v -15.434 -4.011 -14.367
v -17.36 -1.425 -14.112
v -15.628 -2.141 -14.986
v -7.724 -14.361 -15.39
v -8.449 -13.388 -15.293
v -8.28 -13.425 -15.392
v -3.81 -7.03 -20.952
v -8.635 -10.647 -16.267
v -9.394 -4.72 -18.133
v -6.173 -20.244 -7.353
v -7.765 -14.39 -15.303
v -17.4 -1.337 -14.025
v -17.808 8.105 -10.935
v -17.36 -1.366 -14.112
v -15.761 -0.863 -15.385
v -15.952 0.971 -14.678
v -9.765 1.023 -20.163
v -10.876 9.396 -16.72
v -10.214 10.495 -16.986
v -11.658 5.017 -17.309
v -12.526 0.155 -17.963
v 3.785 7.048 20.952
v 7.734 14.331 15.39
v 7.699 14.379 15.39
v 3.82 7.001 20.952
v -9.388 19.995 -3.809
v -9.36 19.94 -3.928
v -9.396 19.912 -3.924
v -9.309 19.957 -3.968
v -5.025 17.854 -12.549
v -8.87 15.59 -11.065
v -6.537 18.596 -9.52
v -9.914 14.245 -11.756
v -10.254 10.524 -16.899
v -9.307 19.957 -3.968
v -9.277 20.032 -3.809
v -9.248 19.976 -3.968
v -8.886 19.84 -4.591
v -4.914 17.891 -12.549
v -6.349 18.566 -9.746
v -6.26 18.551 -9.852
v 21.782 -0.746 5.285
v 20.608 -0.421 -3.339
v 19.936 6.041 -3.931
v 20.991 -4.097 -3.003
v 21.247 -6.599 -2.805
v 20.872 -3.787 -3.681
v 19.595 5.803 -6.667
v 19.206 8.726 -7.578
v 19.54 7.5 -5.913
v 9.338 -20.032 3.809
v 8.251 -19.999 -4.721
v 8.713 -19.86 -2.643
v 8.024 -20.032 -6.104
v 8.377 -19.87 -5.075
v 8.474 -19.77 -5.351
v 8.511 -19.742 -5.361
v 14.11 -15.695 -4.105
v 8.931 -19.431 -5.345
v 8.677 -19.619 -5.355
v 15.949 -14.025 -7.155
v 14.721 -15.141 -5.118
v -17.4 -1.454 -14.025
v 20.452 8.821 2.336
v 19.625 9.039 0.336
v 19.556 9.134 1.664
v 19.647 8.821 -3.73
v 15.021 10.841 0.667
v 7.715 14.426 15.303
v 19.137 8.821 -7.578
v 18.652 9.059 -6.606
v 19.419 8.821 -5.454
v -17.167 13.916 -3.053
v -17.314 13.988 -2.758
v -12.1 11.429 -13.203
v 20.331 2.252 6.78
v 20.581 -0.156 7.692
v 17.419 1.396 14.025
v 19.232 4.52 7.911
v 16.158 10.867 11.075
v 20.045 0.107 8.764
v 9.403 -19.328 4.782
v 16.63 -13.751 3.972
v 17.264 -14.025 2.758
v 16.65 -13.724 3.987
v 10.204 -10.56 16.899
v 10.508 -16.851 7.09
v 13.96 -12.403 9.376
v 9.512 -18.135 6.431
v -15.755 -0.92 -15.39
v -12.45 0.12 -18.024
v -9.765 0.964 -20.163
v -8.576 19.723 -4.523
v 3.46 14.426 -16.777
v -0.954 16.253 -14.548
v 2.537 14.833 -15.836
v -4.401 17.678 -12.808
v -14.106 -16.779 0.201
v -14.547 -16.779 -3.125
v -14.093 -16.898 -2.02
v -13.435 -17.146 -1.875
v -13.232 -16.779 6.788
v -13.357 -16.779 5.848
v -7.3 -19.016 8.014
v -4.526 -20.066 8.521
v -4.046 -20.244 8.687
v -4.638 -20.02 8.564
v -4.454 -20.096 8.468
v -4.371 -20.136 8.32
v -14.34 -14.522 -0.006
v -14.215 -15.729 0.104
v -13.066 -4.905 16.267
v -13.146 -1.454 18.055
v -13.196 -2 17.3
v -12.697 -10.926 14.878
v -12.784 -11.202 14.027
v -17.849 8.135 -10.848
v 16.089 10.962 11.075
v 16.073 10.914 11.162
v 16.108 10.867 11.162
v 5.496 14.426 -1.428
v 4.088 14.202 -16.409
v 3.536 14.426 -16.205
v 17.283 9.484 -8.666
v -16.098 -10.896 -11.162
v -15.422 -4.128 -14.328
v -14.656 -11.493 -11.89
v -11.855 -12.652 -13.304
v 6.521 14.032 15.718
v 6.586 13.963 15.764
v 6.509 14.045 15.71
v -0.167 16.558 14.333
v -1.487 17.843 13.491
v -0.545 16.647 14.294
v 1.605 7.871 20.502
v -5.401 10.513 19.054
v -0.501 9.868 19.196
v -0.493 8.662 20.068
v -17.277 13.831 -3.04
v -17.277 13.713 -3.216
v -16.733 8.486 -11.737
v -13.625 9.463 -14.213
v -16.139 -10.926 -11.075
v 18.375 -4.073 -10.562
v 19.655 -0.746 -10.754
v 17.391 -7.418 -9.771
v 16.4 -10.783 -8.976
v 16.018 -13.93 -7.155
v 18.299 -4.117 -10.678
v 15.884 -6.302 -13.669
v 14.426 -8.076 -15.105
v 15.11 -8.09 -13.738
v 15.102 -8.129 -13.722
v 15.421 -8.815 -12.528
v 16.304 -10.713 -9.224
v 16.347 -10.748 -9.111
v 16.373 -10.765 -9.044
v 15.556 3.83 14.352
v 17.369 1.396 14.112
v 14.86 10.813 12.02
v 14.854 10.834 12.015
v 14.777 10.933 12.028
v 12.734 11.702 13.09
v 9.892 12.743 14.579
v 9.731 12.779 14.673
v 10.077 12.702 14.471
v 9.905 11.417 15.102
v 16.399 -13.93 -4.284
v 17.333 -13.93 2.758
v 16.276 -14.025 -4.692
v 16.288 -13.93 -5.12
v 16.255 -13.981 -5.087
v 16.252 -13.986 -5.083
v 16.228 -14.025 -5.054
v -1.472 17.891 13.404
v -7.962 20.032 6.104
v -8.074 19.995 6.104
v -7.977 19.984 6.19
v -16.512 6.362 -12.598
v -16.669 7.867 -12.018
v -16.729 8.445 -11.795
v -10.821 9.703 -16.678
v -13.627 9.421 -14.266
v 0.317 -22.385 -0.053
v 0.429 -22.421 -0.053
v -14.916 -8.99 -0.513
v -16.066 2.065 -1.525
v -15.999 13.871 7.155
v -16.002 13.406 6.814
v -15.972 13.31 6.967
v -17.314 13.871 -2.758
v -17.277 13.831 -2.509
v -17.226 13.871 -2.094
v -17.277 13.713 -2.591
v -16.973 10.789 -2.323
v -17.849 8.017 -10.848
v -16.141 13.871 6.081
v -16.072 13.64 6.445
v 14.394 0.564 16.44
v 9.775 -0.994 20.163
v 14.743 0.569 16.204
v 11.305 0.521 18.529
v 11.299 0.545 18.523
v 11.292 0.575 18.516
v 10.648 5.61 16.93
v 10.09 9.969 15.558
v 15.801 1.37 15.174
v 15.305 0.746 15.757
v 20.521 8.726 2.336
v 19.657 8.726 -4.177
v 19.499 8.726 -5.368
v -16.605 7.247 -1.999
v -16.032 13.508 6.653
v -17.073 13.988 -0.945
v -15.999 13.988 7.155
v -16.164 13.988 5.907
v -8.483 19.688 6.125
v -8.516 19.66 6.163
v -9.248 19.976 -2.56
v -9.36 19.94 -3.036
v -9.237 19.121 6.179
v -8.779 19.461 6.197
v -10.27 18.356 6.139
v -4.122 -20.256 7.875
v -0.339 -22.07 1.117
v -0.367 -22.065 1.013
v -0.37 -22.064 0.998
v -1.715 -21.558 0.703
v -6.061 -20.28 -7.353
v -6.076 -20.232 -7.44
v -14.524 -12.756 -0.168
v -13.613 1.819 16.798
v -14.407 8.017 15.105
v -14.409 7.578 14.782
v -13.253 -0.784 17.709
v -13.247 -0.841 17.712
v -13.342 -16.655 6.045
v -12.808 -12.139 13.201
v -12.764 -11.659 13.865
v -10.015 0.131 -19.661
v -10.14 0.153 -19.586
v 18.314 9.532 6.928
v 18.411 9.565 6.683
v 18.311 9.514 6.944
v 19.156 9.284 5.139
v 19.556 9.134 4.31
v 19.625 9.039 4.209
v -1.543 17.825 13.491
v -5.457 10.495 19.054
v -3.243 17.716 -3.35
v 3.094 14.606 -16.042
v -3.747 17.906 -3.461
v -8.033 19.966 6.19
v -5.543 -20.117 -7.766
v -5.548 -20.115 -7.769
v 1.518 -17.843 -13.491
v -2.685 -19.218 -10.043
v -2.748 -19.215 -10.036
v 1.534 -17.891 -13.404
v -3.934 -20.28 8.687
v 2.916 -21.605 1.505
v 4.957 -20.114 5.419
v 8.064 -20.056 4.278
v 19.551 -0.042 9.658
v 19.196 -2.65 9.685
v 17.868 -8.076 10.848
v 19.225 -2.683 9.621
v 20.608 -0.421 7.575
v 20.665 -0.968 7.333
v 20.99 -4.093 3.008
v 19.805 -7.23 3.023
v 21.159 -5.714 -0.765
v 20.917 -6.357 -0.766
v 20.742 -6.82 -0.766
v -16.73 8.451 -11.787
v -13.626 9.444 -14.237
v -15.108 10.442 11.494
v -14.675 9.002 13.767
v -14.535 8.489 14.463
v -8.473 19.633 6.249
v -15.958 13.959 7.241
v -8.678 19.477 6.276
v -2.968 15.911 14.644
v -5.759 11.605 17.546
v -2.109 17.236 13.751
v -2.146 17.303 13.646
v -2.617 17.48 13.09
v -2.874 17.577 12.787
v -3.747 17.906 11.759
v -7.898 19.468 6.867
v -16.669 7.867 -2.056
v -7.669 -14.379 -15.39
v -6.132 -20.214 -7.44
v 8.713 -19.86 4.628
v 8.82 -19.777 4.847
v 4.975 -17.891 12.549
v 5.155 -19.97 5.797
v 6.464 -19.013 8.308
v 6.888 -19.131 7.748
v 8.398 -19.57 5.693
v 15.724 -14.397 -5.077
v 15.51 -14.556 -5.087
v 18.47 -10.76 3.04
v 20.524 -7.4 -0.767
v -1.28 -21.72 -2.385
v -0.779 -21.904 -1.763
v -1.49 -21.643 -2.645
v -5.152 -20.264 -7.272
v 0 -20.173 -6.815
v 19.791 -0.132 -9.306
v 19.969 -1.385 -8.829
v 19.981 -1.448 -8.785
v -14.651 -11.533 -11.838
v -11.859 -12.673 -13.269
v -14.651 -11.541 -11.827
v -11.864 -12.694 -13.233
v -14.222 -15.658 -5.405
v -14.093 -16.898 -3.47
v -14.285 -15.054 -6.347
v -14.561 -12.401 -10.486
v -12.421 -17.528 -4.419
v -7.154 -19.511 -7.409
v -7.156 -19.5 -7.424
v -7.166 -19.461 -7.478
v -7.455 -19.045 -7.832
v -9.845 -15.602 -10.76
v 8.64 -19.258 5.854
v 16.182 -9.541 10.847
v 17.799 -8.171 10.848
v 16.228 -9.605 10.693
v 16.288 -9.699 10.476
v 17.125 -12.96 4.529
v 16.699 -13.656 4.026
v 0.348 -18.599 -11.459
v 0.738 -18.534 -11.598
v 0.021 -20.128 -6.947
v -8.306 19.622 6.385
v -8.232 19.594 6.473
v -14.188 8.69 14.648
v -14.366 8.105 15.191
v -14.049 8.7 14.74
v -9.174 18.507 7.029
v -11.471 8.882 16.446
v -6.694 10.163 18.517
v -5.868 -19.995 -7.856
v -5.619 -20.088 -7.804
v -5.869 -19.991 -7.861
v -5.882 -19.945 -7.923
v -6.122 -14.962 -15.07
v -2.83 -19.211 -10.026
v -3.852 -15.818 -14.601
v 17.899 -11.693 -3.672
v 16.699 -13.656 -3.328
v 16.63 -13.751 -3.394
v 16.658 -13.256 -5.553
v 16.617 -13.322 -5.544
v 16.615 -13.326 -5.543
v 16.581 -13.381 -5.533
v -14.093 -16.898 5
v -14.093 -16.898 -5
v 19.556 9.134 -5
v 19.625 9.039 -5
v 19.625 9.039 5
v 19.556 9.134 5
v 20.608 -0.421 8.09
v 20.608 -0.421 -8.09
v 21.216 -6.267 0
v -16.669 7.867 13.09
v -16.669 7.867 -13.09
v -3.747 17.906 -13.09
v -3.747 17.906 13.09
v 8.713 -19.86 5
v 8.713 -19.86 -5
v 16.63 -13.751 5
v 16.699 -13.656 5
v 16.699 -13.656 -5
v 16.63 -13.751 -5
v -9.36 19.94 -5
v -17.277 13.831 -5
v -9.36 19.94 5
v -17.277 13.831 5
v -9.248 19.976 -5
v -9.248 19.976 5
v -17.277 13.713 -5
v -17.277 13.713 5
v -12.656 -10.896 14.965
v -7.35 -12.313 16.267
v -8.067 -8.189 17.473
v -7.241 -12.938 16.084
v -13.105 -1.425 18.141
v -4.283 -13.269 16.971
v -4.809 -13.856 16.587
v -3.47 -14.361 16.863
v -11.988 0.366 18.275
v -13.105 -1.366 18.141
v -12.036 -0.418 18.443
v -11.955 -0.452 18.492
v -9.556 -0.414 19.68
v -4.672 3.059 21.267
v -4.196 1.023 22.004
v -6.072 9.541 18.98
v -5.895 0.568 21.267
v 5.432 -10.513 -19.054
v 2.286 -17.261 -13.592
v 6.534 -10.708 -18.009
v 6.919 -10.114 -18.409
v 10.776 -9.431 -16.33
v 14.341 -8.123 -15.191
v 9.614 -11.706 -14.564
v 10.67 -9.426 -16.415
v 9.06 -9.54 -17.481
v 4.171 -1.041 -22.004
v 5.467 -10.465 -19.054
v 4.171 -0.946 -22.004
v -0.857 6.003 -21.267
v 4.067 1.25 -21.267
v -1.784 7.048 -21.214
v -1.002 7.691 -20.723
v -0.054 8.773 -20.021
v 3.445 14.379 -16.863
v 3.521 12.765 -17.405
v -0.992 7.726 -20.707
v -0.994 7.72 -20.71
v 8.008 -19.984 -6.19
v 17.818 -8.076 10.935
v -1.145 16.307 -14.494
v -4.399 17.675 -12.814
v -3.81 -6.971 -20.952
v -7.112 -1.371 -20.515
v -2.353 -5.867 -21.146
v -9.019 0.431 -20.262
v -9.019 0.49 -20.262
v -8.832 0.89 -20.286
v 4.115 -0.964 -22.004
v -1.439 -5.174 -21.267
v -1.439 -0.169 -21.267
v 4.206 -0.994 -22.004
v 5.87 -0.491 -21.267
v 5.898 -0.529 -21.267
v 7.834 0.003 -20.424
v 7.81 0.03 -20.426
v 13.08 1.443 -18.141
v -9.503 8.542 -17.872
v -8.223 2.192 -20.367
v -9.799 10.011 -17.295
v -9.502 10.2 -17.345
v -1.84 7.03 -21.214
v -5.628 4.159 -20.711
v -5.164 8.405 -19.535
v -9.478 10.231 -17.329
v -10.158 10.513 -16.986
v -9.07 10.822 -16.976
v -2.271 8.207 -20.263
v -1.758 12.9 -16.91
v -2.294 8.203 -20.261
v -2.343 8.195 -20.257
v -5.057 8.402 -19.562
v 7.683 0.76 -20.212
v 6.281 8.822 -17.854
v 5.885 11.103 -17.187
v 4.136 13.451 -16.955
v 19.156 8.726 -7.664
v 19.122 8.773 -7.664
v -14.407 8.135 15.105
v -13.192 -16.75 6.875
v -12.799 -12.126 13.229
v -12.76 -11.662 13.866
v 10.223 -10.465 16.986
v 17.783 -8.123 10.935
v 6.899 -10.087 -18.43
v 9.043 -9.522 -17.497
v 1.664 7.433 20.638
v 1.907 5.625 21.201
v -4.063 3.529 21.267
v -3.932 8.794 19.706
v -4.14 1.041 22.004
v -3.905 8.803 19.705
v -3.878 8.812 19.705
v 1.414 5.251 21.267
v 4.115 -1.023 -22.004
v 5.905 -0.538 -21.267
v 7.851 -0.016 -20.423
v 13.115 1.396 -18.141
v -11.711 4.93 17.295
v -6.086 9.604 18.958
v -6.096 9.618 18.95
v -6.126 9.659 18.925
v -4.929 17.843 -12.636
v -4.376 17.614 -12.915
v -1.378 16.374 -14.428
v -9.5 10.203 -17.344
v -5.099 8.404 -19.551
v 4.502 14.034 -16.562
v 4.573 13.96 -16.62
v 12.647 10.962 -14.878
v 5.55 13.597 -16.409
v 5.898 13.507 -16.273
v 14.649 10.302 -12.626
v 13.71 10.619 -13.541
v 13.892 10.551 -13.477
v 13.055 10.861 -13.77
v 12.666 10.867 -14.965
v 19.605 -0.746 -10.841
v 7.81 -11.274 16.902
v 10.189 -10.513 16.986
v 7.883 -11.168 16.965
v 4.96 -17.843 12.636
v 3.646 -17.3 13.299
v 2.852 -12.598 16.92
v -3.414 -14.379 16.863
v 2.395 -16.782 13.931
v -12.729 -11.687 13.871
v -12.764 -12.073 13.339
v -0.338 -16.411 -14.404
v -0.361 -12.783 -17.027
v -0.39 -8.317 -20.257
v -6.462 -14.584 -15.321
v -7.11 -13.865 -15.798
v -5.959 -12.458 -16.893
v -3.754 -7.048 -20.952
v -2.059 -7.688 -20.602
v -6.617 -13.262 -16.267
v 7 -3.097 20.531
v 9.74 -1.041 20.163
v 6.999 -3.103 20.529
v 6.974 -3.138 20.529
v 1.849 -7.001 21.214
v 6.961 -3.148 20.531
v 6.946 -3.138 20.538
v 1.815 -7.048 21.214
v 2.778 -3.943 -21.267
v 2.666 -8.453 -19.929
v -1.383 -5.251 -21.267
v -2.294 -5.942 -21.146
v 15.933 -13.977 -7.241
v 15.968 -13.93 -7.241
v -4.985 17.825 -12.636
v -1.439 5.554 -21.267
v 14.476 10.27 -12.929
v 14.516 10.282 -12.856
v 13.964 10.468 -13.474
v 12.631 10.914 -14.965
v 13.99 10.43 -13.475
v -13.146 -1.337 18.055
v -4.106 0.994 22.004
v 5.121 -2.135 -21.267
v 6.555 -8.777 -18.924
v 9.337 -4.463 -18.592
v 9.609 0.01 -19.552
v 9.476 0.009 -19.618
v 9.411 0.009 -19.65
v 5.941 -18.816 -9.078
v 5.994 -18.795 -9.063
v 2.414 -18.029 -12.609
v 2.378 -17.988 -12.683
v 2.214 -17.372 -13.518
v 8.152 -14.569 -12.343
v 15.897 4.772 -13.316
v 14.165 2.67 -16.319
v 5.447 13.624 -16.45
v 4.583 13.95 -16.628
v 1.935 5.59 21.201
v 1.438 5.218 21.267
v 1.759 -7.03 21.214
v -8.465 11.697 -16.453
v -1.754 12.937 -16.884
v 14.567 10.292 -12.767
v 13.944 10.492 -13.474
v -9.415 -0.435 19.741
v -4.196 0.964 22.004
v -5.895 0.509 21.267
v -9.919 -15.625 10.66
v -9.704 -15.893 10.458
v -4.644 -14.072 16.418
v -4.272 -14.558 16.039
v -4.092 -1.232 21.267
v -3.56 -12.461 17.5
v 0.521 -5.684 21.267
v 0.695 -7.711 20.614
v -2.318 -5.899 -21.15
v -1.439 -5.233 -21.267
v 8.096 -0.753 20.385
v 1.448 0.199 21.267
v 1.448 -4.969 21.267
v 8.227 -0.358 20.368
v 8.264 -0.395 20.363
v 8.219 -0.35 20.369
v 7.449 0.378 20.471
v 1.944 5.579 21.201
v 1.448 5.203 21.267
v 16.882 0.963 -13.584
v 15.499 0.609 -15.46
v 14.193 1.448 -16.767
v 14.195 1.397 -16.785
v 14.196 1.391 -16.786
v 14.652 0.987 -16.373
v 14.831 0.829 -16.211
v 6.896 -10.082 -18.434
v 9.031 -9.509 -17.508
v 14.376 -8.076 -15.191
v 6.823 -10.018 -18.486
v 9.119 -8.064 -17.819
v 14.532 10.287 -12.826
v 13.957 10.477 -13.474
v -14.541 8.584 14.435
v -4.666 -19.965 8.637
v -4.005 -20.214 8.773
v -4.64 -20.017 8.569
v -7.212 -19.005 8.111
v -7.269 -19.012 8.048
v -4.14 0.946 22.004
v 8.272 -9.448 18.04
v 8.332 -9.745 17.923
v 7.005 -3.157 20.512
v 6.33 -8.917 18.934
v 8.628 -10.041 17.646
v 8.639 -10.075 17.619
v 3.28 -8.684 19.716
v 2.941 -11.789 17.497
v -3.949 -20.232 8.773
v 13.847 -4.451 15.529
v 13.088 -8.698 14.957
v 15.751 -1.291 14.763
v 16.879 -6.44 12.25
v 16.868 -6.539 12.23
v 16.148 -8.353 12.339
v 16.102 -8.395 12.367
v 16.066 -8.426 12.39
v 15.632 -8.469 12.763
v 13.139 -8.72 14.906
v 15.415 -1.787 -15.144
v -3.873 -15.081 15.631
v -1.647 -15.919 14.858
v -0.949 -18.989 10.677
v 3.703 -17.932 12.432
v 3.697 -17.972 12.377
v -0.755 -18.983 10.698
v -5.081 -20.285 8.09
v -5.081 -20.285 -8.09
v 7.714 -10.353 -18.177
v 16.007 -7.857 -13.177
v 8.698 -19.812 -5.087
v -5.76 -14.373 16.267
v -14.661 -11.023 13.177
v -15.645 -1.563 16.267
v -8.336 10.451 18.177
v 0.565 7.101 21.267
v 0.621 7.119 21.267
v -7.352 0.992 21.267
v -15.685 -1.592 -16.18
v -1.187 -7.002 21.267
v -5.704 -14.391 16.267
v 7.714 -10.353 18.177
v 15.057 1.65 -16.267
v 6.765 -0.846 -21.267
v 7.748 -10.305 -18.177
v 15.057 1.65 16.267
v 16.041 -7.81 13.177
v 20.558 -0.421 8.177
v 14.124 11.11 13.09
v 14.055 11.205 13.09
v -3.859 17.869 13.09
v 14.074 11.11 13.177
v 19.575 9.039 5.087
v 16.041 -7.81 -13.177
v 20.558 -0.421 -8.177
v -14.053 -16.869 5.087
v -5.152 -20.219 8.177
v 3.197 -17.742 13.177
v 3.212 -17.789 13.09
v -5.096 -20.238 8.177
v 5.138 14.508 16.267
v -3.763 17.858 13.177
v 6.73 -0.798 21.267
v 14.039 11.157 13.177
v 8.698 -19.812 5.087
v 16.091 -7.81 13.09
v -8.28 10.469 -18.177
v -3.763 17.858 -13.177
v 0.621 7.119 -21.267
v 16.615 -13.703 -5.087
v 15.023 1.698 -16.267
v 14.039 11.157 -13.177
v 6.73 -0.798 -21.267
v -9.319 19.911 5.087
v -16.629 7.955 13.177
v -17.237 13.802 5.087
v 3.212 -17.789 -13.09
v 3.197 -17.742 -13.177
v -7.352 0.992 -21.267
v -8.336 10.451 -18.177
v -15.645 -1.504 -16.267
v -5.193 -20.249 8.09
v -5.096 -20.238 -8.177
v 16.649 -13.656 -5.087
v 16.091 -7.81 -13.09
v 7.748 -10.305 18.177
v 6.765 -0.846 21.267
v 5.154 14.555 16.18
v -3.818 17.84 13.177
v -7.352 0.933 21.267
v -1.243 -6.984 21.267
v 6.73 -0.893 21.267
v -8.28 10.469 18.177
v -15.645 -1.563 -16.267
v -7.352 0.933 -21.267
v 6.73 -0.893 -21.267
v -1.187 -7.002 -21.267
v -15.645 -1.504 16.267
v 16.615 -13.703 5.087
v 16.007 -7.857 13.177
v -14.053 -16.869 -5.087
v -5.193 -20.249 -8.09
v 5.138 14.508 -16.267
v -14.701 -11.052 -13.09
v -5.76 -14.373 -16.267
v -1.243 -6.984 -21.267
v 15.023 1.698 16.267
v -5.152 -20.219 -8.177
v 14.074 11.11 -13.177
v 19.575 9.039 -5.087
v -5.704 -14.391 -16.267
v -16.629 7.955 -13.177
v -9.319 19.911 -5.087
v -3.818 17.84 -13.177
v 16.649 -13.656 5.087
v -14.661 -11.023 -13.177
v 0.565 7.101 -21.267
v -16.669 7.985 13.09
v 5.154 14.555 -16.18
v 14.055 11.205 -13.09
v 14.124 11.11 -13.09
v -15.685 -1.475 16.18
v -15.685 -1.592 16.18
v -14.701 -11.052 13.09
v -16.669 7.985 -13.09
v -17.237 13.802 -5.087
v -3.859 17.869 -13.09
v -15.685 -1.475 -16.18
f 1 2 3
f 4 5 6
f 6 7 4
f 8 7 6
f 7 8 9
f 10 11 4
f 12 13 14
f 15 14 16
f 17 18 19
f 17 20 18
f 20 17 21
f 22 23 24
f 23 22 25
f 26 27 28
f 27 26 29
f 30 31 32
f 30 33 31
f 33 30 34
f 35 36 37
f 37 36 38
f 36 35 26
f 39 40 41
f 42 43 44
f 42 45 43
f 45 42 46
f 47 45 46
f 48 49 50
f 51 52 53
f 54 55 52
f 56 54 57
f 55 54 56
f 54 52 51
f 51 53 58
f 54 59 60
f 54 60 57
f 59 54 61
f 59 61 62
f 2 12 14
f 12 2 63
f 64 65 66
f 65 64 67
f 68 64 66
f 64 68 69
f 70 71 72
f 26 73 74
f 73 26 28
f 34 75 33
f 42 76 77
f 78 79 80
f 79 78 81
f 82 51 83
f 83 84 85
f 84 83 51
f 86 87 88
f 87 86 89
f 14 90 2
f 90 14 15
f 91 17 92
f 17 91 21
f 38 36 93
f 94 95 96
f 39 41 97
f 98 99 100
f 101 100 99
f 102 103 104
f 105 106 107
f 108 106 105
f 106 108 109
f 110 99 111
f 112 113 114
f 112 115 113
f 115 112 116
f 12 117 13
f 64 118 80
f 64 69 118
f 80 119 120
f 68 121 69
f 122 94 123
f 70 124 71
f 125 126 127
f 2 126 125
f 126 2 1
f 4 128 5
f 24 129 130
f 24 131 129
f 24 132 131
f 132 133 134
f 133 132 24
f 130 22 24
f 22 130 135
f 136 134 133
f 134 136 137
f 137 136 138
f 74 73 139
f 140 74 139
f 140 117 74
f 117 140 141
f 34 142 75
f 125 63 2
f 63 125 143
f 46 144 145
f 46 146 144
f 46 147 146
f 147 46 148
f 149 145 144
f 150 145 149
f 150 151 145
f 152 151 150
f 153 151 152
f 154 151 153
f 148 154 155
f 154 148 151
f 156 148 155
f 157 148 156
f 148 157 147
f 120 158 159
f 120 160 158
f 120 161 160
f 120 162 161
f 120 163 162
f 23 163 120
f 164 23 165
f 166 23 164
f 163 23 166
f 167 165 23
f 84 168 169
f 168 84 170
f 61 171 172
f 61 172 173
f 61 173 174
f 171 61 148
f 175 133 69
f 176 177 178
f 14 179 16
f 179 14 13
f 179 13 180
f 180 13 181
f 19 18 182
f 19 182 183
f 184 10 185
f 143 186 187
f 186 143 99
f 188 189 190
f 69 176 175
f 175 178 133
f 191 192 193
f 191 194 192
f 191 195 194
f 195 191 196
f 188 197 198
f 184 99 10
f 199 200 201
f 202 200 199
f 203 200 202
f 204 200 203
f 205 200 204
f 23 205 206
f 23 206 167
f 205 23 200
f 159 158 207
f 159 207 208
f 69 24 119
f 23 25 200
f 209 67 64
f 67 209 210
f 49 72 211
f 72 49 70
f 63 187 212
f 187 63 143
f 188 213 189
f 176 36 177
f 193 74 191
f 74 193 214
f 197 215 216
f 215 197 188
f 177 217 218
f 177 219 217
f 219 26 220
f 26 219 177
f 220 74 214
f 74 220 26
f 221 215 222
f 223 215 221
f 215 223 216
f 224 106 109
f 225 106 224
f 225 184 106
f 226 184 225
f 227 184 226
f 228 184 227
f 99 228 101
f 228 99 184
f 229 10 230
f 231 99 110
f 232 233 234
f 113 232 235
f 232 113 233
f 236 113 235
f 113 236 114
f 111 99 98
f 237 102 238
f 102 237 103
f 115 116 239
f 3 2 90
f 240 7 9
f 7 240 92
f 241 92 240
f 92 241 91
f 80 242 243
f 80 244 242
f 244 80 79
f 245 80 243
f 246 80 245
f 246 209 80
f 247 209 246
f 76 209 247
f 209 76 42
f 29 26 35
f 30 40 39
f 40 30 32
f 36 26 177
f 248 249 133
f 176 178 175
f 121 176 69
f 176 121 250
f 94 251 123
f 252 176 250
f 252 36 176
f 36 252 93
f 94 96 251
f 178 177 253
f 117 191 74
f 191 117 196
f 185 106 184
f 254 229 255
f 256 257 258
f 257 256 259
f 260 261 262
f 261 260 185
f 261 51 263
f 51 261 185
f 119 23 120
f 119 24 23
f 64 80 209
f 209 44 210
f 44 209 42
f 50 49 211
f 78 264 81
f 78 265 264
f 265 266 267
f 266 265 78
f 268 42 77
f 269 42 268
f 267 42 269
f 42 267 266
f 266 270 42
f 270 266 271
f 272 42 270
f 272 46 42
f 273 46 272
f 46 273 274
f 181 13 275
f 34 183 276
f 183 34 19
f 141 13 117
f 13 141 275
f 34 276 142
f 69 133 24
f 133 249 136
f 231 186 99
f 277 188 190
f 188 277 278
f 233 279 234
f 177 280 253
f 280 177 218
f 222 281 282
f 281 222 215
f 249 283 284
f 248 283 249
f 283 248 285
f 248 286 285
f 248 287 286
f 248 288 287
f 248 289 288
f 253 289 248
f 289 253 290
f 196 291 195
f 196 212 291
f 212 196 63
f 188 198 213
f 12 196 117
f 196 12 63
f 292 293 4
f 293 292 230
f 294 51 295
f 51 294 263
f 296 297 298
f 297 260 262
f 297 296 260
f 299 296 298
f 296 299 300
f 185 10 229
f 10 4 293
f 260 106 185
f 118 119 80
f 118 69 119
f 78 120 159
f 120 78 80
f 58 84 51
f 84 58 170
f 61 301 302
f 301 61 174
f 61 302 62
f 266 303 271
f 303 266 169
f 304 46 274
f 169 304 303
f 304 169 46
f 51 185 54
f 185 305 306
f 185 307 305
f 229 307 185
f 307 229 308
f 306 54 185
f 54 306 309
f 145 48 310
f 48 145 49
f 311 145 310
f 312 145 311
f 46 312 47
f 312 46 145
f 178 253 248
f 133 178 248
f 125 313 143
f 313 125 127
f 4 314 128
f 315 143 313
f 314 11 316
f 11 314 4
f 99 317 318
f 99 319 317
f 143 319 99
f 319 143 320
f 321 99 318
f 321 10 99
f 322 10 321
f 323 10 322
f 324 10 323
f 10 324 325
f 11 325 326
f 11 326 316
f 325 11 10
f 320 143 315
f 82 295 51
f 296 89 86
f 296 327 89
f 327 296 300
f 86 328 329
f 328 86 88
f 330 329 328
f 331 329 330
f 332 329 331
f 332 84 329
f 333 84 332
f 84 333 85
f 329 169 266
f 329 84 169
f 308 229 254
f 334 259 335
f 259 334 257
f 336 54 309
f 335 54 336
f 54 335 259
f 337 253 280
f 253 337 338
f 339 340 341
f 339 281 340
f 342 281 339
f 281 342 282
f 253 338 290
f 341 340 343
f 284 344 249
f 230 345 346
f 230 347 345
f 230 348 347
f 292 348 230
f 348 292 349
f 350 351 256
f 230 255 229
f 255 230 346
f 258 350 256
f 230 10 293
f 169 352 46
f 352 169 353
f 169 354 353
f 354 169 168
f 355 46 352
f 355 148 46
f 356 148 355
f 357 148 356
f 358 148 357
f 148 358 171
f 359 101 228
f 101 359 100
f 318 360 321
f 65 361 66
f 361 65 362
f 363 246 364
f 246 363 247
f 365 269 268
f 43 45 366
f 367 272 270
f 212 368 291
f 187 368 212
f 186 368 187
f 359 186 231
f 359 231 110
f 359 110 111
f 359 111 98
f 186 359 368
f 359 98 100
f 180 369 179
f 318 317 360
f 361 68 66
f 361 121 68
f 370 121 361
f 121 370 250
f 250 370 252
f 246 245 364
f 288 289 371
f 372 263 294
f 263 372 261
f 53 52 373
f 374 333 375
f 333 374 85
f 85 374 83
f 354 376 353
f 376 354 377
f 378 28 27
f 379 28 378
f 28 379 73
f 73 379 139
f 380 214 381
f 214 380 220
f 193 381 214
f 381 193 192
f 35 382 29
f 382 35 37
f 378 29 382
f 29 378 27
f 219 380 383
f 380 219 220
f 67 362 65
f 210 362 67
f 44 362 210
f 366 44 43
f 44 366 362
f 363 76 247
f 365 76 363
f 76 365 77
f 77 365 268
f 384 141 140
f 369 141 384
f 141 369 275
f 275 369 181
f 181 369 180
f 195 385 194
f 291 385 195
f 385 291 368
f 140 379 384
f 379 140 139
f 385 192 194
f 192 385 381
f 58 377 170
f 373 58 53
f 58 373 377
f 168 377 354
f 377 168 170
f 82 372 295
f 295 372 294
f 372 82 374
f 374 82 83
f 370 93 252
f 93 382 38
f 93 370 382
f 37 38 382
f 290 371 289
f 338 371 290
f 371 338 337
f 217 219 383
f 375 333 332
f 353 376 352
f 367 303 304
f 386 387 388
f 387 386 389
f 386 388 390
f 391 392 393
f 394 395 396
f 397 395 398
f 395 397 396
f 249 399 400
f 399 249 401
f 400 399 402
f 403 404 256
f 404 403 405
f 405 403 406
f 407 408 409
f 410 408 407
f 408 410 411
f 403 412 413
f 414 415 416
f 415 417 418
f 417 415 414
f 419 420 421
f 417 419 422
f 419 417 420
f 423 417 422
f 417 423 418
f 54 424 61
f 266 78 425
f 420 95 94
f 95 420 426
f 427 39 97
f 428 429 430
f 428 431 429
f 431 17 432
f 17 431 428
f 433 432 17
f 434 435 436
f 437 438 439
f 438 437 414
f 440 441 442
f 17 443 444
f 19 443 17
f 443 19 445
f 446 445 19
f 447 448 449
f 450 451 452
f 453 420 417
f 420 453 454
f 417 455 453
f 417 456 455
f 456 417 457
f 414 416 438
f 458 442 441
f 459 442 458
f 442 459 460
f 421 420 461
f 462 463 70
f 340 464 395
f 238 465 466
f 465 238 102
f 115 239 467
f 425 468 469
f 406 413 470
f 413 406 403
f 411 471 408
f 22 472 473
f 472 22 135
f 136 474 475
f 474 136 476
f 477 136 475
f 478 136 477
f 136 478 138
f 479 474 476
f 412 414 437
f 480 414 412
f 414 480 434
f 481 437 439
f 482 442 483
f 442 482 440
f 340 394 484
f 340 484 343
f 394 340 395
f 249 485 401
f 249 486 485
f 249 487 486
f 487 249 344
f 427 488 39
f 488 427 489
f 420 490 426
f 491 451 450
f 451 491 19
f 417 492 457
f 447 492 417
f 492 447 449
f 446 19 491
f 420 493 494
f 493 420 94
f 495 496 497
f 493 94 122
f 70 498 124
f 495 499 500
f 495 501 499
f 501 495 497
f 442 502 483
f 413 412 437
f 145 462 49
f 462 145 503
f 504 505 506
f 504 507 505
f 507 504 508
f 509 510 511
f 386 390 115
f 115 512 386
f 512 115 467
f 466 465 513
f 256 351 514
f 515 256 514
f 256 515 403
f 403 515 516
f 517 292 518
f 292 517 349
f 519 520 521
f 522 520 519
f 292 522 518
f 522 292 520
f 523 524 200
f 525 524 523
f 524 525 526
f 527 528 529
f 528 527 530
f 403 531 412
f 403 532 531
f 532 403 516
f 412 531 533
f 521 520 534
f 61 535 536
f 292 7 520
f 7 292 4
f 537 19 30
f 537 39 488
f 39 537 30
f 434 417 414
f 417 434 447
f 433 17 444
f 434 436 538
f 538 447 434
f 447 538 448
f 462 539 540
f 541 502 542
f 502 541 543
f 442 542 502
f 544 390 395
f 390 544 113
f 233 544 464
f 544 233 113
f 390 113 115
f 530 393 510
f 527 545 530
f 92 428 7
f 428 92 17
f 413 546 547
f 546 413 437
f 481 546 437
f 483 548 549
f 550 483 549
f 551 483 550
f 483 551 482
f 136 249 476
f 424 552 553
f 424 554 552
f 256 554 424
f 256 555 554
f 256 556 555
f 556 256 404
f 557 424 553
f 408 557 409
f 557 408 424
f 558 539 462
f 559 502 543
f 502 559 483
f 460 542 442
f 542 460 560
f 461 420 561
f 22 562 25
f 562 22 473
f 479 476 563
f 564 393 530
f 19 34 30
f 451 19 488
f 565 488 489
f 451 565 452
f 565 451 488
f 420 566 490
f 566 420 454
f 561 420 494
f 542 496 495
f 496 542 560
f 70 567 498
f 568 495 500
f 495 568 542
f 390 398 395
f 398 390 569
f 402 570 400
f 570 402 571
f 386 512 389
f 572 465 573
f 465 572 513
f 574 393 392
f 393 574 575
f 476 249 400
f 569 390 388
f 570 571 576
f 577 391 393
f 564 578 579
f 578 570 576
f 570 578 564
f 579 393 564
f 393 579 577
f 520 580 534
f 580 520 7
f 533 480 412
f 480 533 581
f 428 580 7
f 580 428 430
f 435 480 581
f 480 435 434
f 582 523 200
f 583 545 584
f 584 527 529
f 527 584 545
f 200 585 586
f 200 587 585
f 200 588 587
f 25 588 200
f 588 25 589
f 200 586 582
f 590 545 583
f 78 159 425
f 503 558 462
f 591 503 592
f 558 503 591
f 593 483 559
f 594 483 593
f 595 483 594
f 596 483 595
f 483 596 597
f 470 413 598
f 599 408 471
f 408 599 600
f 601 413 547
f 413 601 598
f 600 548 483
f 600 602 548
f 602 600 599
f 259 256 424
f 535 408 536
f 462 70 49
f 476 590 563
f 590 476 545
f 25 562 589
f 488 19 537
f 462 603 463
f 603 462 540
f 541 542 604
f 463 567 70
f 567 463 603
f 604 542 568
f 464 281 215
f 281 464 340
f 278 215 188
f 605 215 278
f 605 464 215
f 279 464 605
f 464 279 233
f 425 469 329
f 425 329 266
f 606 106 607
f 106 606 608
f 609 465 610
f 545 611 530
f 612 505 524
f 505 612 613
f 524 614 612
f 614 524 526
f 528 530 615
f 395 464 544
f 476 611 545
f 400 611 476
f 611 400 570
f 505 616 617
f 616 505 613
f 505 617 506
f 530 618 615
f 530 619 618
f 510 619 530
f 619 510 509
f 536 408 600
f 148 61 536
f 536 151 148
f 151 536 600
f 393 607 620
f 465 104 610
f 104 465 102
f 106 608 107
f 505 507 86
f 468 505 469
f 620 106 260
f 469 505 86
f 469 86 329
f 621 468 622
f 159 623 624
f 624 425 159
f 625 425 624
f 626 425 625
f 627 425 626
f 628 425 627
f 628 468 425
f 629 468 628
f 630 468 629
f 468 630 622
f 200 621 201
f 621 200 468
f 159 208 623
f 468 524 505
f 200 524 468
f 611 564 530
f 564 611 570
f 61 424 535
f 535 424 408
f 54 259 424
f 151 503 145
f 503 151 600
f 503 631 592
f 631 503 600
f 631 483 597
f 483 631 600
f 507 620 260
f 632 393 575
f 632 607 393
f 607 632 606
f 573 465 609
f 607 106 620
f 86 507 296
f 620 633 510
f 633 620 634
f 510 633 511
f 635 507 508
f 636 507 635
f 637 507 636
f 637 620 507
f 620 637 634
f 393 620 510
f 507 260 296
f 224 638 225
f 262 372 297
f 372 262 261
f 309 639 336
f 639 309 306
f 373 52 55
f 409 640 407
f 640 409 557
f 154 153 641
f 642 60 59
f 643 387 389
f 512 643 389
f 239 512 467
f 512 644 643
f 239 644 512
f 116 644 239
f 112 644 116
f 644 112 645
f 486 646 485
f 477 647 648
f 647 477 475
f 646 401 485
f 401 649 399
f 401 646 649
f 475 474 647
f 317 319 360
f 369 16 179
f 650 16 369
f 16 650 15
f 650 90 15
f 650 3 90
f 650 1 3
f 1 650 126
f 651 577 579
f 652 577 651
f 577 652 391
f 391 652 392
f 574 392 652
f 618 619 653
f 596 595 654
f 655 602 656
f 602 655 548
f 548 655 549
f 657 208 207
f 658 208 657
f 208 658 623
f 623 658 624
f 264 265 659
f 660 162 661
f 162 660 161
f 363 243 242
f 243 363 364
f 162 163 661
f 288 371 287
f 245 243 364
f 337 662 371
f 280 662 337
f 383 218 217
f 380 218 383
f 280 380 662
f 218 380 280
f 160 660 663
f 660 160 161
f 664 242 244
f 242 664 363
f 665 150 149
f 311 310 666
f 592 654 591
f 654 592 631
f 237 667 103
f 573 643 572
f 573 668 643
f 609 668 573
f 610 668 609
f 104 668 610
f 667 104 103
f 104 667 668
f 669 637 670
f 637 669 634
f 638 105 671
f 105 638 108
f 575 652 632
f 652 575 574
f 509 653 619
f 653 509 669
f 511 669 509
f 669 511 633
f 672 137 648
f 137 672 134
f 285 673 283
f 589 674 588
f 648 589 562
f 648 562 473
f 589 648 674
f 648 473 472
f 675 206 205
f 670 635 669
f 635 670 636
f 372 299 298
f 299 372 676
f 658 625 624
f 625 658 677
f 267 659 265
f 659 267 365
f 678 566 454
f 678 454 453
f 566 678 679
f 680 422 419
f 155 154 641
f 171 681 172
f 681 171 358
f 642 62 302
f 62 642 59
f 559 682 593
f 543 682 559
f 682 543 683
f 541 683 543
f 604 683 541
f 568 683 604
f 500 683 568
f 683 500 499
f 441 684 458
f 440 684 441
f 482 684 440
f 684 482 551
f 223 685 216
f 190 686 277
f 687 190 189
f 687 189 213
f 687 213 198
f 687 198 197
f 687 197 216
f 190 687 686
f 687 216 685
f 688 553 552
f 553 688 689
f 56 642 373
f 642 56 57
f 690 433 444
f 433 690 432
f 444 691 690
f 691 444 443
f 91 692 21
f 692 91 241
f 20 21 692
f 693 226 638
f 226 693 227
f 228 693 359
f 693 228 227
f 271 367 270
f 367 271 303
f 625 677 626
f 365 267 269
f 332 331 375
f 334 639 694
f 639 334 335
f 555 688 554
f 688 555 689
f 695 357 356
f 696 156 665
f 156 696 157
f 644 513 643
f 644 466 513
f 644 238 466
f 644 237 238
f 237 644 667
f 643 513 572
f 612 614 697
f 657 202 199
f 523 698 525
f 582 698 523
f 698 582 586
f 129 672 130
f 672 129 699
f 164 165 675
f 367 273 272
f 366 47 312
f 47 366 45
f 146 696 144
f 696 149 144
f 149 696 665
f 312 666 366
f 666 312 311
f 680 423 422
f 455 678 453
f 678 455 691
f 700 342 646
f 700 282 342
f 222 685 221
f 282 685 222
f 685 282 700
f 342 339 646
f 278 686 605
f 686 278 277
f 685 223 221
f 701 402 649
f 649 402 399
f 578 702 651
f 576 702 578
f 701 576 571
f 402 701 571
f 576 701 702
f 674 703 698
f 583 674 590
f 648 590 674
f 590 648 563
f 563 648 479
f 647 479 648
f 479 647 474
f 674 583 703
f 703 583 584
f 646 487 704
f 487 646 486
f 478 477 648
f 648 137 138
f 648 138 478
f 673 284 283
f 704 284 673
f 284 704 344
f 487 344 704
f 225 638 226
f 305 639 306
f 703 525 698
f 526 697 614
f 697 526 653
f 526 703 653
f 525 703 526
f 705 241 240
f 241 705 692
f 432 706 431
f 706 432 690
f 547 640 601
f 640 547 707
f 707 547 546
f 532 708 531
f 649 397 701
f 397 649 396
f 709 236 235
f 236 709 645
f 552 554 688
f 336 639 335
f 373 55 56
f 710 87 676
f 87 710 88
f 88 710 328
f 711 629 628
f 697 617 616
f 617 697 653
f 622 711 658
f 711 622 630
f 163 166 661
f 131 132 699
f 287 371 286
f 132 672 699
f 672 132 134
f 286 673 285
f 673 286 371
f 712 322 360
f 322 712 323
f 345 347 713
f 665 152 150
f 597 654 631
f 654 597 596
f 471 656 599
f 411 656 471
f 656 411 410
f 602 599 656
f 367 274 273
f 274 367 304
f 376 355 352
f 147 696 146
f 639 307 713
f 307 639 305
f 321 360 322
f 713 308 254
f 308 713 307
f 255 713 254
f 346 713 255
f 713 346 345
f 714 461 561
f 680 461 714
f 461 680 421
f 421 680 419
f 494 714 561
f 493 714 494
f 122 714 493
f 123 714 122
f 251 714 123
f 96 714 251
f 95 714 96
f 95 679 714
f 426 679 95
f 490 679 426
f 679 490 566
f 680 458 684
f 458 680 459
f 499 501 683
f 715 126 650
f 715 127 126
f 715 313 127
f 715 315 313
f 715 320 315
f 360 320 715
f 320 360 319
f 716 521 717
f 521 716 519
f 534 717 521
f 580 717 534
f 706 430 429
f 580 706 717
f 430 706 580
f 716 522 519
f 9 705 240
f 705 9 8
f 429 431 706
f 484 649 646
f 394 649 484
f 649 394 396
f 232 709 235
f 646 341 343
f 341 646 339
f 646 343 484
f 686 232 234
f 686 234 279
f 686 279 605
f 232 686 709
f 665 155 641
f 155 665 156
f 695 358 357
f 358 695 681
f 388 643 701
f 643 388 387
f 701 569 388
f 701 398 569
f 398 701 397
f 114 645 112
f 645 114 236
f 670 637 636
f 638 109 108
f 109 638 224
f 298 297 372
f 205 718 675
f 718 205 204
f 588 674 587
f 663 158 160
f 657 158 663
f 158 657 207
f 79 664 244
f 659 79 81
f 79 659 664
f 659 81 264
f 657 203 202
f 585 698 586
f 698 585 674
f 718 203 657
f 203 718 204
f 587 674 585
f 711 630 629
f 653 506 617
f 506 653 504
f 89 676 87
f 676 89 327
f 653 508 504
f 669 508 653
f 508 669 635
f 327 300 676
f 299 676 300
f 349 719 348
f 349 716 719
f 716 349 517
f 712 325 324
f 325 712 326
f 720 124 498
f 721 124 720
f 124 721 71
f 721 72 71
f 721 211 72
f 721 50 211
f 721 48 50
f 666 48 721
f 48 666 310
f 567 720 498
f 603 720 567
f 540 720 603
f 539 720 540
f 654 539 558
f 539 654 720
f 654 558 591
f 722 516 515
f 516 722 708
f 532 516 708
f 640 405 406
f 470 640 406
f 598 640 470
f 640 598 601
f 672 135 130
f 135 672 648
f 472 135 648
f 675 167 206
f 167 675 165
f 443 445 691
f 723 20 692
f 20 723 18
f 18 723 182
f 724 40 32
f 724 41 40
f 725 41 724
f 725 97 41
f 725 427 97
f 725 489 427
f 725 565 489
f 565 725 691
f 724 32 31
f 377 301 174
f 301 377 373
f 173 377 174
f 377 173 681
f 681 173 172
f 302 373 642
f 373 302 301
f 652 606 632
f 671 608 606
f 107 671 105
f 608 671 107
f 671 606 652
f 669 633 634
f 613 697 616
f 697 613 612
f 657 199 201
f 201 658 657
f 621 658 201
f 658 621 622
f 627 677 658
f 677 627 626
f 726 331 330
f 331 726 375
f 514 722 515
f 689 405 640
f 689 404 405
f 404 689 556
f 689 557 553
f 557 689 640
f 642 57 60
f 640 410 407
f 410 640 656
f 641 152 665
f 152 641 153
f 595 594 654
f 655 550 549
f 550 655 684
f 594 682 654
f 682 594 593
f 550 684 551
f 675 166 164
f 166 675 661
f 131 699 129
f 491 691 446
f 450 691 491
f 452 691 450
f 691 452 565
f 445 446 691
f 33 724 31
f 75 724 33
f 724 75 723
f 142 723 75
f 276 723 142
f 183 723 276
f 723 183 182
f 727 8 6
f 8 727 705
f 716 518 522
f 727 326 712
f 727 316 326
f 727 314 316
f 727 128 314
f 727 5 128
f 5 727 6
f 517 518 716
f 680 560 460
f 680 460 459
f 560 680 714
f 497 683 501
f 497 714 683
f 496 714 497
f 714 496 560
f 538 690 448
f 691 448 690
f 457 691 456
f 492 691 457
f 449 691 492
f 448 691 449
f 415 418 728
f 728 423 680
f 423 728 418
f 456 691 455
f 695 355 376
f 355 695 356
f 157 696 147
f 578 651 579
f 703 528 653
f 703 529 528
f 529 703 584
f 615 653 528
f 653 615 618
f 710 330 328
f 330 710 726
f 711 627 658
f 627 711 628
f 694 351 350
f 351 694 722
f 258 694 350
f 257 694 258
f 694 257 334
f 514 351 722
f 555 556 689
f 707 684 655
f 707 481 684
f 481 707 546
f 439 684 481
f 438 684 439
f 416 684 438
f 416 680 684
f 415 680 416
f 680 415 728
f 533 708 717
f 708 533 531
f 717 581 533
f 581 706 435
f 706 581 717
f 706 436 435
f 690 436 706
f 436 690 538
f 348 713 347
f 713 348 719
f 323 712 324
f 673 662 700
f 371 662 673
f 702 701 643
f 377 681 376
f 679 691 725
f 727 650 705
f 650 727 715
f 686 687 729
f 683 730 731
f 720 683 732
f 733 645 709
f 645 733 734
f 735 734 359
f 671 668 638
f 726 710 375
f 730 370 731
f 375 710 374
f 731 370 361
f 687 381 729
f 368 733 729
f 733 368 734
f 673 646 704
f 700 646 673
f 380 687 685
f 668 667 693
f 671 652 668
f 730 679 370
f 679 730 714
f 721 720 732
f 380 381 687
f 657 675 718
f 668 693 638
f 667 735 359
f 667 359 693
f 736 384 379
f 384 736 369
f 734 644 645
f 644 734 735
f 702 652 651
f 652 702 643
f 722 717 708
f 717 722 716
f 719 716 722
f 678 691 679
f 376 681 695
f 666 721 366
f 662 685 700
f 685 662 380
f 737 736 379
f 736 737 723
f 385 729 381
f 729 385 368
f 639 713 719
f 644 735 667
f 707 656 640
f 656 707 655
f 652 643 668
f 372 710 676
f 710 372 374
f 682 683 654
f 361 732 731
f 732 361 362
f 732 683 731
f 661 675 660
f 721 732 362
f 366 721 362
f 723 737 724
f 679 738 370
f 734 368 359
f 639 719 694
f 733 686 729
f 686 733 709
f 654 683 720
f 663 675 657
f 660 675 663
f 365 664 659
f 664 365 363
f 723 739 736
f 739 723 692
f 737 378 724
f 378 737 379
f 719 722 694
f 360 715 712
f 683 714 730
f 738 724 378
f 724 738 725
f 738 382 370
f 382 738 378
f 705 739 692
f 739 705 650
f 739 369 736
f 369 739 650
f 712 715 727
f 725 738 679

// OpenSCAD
// Auto-generated OpenSCAD file

    inner_points = 10*[[-0.9279033340044873, 1.9881287339373244, 0.5], [1.6599232743581653, -1.3655894049421804, 0.5000000000000002], [-1.719608792154131, 1.3772257403810124, 0.49999999999999983], [0.8682178162085216, -1.9764923984984926, 0.5], [-0.9279033340044872, 1.9881287339373246, -0.5], [1.6599232743581653, -1.3655894049421804, -0.49999999999999983], [-1.719608792154131, 1.3772257403810124, -0.5000000000000002], [0.8682178162085217, -1.9764923984984923, -0.5], [0.06055847339868262, 0.7071223935723936, 2.118033988749895], [0.6714614669549944, -0.08458306457724996, 2.118033988749895], [-0.7311469847509608, 0.0962194000160817, 2.118033988749895], [-0.1202439911946491, -0.6954860581335618, 2.118033988749895], [0.060558473398683345, 0.7071223935723938, -2.118033988749895], [0.6714614669549952, -0.08458306457724962, -2.118033988749895], [-0.7311469847509601, 0.09621940001608204, -2.118033988749895], [-0.12024399119464838, -0.6954860581335616, -2.118033988749895], [1.9524678073199255, 0.9038787428259204, 0.5000000000000004], [-1.4012503315595792, -1.6839478655367321, 0.49999999999999967], [1.9524678073199255, 0.9038787428259204, -0.4999999999999996], [-1.4012503315595792, -1.6839478655367321, -0.5000000000000003], [2.1116470376172014, -0.6267080601329519, 3.1851338429106984e-16], [0.038935239102626924, -2.226072861092434, -1.4591074810930197e-16], [-0.8295251593777242, 1.042174066976703, 1.8090169943749475], [0.7698396415817579, -1.0305377315378712, 1.8090169943749475], [-0.8295251593777235, 1.0421740669767032, -1.8090169943749475], [0.7698396415817585, -1.030537731537871, -1.8090169943749475], [1.402365869434126, 1.1109520649773128, 1.3090169943749477], [-1.462051387230092, -1.099315729538481, 1.3090169943749472], [1.4023658694341263, 1.110952064977313, -1.3090169943749472], [-1.4620513872300915, -1.0993157295384808, -1.3090169943749477], [-0.3778013961186881, 1.7810554117859319, 1.3090169943749475], [1.5991222186876526, -0.7809572689439295, 1.3090169943749477], [-1.6588077364836187, 0.7925936043827613, 1.3090169943749472], [0.318115878322722, -1.7694190763471, 1.3090169943749475], [-0.37780139611868774, 1.781055411785932, -1.3090169943749475], [1.599122218687653, -0.7809572689439293, -1.3090169943749472], [-1.6588077364836182, 0.7925936043827615, -1.3090169943749477], [0.31811587832272237, -1.7694190763470998, -1.3090169943749475], [0.512282236657719, 1.4460037383816222, 1.6180339887498951], [1.5007440440608895, 0.1649973980166917, 1.6180339887498951], [-1.5604295618568556, -0.15336106257785984, 1.6180339887498947], [-0.571967754453685, -1.4343674029427904, 1.6180339887498947], [0.5122822366577193, 1.4460037383816224, -1.6180339887498947], [1.50074404406089, 0.16499739801669192, -1.6180339887498947], [-1.560429561856855, -0.1533610625778596, -1.6180339887498951], [-0.5719677544536846, -1.4343674029427902, -1.6180339887498951], [2.0508459819466887, -0.04207592413470093, 0.8090169943749478], [-0.5111666987831726, -2.0189995389410416, 0.8090169943749472], [2.0508459819466887, -0.04207592413470082, -0.8090169943749471], [-0.5111666987831723, -2.018999538941041, -0.8090169943749477]];

    outer_points = 10*[[-0.799273279028224, 1.9936569571401734, 0.6103786858810235], [1.7232737678332082, -1.3929503128430878, 0.2758349588940299], [-1.5918035039950686, 1.3929503128430878, 0.7154851557643633], [0.9307435428663637, -1.9936569571401734, 0.38094142877736964], [-0.9307435428663637, 1.9936569571401734, -0.38094142877736964], [1.5918035039950686, -1.3929503128430878, -0.7154851557643633], [-1.7232737678332082, 1.3929503128430878, -0.2758349588940299], [0.799273279028224, -1.9936569571401734, -0.6103786858810235], [0.37697731005219565, 0.7000880865540592, 2.0865839921437805], [0.9724698895528412, -0.09938144225697354, 2.0076089311287193], [-0.41555291491464885, 0.09938144225697354, 2.19169046202712], [0.1799396645859967, -0.7000880865540592, 2.112715401012059], [-0.1799396645859967, 0.7000880865540592, -2.112715401012059], [0.41555291491464885, -0.09938144225697354, -2.19169046202712], [-0.9724698895528412, 0.09938144225697354, -2.0076089311287193], [-0.37697731005219565, -0.7000880865540592, -2.0865839921437805], [2.04208737526077, 0.8725823254836041, 0.23355345117123516], [-1.3151245319219846, -1.672051854294637, 0.6787916024720966], [1.9106171114226302, 0.8725823254836041, -0.757766663487158], [-1.4465947957601242, -1.672051854294637, -0.31252851218629657], [2.114691729378242, -0.6599187580852582, -0.28045338280409476], [0.03982066330344263, -2.2325891701229215, -0.005281072211994187], [-0.5416779650523665, 1.0465191996985734, 1.8966946312832687], [1.0173418481286722, -1.0465191996985734, 1.689935237282241], [-1.0173418481286722, 1.0465191996985734, -1.689935237282241], [0.5416779650523665, -1.0465191996985734, -1.8966946312832687], [1.605797455139905, 1.0866885281673746, 1.1075154867158379], [-1.2616038359017392, -1.0866885281673746, 1.4877942671912783], [1.2616038359017392, 1.0866885281673746, -1.4877942671912783], [-1.605797455139905, -1.0866885281673746, -1.1075154867158379], [-0.1502600035073329, 1.7795507544564033, 1.3404062895851439], [1.7767944638534539, -0.8075869867158254, 1.0848376236132116], [-1.432600844615288, 0.8075869867158254, 1.5104721302939046], [0.49445362274549887, -1.7795507544564033, 1.2549034643219723], [-0.49445362274549887, 1.7795507544564033, -1.2549034643219723], [1.432600844615288, -0.8075869867158254, -1.5104721302939046], [-1.7767944638534539, 0.8075869867158254, -1.0848376236132116], [0.1502600035073329, -1.7795507544564033, -1.3404062895851439], [0.7683952715972292, 1.433119641311889, 1.530295650445656], [1.7319225052776228, 0.1395507707257745, 1.4025113174596897], [-1.3064757944775702, -0.1395507707257745, 1.8054679610377566], [-0.3429485607971766, -1.433119641311889, 1.6776836280517904], [0.3429485607971766, 1.433119641311889, -1.6776836280517904], [1.3064757944775702, 0.1395507707257745, -1.8054679610377566], [-1.7319225052776228, -0.1395507707257745, -1.4025113174596897], [-0.7683952715972292, -1.433119641311889, -1.530295650445656], [2.1682124253984876, -0.07455543195799563, 0.528549281915087], [-0.3964692568174225, -2.018482967439151, 0.8686809633326087], [1.9554890699984613, -0.07455543195799563, -1.0754403573336362], [-0.6091926122174488, -2.018482967439151, -0.7353086759161145]];

    // Convex hull for inner set (I)
    module inner_hull() {
        hull() {
            for (p = inner_points) {
                translate(p) sphere(r=0.1);
            }
        }
    }

    // Convex hull for outer set (O) minus inner hull (O \ I)
    module outer_minus_inner() {
        difference() {
            hull() {
                for (p = outer_points) {
                    translate(p) sphere(r=0.1);
                }
            }
            inner_hull(); // Subtract inner hull
        }
    }

    // Convex hull for outer set (O) minus all translated inner hulls
    module outer_minus_AllTranslationInner() {
        difference() {
            hull() {
                for (p = outer_points) {
                    translate(p) sphere(r=0.1);
                }
            }
            hull() {
                translate([0,0,50]) inner_hull();
                translate([0,0,-50]) inner_hull();
            }; // Subtract translated inner hulls
        }
    }

    // Difference between outer_minus_inner and outer_minus_AllTranslationInner
    module outer_minus_inner_diff() {
        difference() {
            // Outer minus inner
            difference() {
                hull() {
                    for (p = outer_points) {
                        translate(p) sphere(r=0.1);
                    }
                }
                inner_hull();
            }

            // Subtract Outer minus AllTranslationInner
            difference() {
                hull() {
                    for (p = outer_points) {
                        translate(p) sphere(r=0.1);
                    }
                }
                hull() {
                    translate([0,0,50]) inner_hull();
                    translate([0,0,-50]) inner_hull();
                };
            }
        }
    }

    // Rendering all with colors applied
    color([1, 0, 0, 0.5]) inner_hull(); // Transparent red
    color([0, 1, 0, 1]) outer_minus_AllTranslationInner(); // Opaque green
    color([1, 1, 0, 1]) outer_minus_inner_diff(); // Opaque yellow
    
